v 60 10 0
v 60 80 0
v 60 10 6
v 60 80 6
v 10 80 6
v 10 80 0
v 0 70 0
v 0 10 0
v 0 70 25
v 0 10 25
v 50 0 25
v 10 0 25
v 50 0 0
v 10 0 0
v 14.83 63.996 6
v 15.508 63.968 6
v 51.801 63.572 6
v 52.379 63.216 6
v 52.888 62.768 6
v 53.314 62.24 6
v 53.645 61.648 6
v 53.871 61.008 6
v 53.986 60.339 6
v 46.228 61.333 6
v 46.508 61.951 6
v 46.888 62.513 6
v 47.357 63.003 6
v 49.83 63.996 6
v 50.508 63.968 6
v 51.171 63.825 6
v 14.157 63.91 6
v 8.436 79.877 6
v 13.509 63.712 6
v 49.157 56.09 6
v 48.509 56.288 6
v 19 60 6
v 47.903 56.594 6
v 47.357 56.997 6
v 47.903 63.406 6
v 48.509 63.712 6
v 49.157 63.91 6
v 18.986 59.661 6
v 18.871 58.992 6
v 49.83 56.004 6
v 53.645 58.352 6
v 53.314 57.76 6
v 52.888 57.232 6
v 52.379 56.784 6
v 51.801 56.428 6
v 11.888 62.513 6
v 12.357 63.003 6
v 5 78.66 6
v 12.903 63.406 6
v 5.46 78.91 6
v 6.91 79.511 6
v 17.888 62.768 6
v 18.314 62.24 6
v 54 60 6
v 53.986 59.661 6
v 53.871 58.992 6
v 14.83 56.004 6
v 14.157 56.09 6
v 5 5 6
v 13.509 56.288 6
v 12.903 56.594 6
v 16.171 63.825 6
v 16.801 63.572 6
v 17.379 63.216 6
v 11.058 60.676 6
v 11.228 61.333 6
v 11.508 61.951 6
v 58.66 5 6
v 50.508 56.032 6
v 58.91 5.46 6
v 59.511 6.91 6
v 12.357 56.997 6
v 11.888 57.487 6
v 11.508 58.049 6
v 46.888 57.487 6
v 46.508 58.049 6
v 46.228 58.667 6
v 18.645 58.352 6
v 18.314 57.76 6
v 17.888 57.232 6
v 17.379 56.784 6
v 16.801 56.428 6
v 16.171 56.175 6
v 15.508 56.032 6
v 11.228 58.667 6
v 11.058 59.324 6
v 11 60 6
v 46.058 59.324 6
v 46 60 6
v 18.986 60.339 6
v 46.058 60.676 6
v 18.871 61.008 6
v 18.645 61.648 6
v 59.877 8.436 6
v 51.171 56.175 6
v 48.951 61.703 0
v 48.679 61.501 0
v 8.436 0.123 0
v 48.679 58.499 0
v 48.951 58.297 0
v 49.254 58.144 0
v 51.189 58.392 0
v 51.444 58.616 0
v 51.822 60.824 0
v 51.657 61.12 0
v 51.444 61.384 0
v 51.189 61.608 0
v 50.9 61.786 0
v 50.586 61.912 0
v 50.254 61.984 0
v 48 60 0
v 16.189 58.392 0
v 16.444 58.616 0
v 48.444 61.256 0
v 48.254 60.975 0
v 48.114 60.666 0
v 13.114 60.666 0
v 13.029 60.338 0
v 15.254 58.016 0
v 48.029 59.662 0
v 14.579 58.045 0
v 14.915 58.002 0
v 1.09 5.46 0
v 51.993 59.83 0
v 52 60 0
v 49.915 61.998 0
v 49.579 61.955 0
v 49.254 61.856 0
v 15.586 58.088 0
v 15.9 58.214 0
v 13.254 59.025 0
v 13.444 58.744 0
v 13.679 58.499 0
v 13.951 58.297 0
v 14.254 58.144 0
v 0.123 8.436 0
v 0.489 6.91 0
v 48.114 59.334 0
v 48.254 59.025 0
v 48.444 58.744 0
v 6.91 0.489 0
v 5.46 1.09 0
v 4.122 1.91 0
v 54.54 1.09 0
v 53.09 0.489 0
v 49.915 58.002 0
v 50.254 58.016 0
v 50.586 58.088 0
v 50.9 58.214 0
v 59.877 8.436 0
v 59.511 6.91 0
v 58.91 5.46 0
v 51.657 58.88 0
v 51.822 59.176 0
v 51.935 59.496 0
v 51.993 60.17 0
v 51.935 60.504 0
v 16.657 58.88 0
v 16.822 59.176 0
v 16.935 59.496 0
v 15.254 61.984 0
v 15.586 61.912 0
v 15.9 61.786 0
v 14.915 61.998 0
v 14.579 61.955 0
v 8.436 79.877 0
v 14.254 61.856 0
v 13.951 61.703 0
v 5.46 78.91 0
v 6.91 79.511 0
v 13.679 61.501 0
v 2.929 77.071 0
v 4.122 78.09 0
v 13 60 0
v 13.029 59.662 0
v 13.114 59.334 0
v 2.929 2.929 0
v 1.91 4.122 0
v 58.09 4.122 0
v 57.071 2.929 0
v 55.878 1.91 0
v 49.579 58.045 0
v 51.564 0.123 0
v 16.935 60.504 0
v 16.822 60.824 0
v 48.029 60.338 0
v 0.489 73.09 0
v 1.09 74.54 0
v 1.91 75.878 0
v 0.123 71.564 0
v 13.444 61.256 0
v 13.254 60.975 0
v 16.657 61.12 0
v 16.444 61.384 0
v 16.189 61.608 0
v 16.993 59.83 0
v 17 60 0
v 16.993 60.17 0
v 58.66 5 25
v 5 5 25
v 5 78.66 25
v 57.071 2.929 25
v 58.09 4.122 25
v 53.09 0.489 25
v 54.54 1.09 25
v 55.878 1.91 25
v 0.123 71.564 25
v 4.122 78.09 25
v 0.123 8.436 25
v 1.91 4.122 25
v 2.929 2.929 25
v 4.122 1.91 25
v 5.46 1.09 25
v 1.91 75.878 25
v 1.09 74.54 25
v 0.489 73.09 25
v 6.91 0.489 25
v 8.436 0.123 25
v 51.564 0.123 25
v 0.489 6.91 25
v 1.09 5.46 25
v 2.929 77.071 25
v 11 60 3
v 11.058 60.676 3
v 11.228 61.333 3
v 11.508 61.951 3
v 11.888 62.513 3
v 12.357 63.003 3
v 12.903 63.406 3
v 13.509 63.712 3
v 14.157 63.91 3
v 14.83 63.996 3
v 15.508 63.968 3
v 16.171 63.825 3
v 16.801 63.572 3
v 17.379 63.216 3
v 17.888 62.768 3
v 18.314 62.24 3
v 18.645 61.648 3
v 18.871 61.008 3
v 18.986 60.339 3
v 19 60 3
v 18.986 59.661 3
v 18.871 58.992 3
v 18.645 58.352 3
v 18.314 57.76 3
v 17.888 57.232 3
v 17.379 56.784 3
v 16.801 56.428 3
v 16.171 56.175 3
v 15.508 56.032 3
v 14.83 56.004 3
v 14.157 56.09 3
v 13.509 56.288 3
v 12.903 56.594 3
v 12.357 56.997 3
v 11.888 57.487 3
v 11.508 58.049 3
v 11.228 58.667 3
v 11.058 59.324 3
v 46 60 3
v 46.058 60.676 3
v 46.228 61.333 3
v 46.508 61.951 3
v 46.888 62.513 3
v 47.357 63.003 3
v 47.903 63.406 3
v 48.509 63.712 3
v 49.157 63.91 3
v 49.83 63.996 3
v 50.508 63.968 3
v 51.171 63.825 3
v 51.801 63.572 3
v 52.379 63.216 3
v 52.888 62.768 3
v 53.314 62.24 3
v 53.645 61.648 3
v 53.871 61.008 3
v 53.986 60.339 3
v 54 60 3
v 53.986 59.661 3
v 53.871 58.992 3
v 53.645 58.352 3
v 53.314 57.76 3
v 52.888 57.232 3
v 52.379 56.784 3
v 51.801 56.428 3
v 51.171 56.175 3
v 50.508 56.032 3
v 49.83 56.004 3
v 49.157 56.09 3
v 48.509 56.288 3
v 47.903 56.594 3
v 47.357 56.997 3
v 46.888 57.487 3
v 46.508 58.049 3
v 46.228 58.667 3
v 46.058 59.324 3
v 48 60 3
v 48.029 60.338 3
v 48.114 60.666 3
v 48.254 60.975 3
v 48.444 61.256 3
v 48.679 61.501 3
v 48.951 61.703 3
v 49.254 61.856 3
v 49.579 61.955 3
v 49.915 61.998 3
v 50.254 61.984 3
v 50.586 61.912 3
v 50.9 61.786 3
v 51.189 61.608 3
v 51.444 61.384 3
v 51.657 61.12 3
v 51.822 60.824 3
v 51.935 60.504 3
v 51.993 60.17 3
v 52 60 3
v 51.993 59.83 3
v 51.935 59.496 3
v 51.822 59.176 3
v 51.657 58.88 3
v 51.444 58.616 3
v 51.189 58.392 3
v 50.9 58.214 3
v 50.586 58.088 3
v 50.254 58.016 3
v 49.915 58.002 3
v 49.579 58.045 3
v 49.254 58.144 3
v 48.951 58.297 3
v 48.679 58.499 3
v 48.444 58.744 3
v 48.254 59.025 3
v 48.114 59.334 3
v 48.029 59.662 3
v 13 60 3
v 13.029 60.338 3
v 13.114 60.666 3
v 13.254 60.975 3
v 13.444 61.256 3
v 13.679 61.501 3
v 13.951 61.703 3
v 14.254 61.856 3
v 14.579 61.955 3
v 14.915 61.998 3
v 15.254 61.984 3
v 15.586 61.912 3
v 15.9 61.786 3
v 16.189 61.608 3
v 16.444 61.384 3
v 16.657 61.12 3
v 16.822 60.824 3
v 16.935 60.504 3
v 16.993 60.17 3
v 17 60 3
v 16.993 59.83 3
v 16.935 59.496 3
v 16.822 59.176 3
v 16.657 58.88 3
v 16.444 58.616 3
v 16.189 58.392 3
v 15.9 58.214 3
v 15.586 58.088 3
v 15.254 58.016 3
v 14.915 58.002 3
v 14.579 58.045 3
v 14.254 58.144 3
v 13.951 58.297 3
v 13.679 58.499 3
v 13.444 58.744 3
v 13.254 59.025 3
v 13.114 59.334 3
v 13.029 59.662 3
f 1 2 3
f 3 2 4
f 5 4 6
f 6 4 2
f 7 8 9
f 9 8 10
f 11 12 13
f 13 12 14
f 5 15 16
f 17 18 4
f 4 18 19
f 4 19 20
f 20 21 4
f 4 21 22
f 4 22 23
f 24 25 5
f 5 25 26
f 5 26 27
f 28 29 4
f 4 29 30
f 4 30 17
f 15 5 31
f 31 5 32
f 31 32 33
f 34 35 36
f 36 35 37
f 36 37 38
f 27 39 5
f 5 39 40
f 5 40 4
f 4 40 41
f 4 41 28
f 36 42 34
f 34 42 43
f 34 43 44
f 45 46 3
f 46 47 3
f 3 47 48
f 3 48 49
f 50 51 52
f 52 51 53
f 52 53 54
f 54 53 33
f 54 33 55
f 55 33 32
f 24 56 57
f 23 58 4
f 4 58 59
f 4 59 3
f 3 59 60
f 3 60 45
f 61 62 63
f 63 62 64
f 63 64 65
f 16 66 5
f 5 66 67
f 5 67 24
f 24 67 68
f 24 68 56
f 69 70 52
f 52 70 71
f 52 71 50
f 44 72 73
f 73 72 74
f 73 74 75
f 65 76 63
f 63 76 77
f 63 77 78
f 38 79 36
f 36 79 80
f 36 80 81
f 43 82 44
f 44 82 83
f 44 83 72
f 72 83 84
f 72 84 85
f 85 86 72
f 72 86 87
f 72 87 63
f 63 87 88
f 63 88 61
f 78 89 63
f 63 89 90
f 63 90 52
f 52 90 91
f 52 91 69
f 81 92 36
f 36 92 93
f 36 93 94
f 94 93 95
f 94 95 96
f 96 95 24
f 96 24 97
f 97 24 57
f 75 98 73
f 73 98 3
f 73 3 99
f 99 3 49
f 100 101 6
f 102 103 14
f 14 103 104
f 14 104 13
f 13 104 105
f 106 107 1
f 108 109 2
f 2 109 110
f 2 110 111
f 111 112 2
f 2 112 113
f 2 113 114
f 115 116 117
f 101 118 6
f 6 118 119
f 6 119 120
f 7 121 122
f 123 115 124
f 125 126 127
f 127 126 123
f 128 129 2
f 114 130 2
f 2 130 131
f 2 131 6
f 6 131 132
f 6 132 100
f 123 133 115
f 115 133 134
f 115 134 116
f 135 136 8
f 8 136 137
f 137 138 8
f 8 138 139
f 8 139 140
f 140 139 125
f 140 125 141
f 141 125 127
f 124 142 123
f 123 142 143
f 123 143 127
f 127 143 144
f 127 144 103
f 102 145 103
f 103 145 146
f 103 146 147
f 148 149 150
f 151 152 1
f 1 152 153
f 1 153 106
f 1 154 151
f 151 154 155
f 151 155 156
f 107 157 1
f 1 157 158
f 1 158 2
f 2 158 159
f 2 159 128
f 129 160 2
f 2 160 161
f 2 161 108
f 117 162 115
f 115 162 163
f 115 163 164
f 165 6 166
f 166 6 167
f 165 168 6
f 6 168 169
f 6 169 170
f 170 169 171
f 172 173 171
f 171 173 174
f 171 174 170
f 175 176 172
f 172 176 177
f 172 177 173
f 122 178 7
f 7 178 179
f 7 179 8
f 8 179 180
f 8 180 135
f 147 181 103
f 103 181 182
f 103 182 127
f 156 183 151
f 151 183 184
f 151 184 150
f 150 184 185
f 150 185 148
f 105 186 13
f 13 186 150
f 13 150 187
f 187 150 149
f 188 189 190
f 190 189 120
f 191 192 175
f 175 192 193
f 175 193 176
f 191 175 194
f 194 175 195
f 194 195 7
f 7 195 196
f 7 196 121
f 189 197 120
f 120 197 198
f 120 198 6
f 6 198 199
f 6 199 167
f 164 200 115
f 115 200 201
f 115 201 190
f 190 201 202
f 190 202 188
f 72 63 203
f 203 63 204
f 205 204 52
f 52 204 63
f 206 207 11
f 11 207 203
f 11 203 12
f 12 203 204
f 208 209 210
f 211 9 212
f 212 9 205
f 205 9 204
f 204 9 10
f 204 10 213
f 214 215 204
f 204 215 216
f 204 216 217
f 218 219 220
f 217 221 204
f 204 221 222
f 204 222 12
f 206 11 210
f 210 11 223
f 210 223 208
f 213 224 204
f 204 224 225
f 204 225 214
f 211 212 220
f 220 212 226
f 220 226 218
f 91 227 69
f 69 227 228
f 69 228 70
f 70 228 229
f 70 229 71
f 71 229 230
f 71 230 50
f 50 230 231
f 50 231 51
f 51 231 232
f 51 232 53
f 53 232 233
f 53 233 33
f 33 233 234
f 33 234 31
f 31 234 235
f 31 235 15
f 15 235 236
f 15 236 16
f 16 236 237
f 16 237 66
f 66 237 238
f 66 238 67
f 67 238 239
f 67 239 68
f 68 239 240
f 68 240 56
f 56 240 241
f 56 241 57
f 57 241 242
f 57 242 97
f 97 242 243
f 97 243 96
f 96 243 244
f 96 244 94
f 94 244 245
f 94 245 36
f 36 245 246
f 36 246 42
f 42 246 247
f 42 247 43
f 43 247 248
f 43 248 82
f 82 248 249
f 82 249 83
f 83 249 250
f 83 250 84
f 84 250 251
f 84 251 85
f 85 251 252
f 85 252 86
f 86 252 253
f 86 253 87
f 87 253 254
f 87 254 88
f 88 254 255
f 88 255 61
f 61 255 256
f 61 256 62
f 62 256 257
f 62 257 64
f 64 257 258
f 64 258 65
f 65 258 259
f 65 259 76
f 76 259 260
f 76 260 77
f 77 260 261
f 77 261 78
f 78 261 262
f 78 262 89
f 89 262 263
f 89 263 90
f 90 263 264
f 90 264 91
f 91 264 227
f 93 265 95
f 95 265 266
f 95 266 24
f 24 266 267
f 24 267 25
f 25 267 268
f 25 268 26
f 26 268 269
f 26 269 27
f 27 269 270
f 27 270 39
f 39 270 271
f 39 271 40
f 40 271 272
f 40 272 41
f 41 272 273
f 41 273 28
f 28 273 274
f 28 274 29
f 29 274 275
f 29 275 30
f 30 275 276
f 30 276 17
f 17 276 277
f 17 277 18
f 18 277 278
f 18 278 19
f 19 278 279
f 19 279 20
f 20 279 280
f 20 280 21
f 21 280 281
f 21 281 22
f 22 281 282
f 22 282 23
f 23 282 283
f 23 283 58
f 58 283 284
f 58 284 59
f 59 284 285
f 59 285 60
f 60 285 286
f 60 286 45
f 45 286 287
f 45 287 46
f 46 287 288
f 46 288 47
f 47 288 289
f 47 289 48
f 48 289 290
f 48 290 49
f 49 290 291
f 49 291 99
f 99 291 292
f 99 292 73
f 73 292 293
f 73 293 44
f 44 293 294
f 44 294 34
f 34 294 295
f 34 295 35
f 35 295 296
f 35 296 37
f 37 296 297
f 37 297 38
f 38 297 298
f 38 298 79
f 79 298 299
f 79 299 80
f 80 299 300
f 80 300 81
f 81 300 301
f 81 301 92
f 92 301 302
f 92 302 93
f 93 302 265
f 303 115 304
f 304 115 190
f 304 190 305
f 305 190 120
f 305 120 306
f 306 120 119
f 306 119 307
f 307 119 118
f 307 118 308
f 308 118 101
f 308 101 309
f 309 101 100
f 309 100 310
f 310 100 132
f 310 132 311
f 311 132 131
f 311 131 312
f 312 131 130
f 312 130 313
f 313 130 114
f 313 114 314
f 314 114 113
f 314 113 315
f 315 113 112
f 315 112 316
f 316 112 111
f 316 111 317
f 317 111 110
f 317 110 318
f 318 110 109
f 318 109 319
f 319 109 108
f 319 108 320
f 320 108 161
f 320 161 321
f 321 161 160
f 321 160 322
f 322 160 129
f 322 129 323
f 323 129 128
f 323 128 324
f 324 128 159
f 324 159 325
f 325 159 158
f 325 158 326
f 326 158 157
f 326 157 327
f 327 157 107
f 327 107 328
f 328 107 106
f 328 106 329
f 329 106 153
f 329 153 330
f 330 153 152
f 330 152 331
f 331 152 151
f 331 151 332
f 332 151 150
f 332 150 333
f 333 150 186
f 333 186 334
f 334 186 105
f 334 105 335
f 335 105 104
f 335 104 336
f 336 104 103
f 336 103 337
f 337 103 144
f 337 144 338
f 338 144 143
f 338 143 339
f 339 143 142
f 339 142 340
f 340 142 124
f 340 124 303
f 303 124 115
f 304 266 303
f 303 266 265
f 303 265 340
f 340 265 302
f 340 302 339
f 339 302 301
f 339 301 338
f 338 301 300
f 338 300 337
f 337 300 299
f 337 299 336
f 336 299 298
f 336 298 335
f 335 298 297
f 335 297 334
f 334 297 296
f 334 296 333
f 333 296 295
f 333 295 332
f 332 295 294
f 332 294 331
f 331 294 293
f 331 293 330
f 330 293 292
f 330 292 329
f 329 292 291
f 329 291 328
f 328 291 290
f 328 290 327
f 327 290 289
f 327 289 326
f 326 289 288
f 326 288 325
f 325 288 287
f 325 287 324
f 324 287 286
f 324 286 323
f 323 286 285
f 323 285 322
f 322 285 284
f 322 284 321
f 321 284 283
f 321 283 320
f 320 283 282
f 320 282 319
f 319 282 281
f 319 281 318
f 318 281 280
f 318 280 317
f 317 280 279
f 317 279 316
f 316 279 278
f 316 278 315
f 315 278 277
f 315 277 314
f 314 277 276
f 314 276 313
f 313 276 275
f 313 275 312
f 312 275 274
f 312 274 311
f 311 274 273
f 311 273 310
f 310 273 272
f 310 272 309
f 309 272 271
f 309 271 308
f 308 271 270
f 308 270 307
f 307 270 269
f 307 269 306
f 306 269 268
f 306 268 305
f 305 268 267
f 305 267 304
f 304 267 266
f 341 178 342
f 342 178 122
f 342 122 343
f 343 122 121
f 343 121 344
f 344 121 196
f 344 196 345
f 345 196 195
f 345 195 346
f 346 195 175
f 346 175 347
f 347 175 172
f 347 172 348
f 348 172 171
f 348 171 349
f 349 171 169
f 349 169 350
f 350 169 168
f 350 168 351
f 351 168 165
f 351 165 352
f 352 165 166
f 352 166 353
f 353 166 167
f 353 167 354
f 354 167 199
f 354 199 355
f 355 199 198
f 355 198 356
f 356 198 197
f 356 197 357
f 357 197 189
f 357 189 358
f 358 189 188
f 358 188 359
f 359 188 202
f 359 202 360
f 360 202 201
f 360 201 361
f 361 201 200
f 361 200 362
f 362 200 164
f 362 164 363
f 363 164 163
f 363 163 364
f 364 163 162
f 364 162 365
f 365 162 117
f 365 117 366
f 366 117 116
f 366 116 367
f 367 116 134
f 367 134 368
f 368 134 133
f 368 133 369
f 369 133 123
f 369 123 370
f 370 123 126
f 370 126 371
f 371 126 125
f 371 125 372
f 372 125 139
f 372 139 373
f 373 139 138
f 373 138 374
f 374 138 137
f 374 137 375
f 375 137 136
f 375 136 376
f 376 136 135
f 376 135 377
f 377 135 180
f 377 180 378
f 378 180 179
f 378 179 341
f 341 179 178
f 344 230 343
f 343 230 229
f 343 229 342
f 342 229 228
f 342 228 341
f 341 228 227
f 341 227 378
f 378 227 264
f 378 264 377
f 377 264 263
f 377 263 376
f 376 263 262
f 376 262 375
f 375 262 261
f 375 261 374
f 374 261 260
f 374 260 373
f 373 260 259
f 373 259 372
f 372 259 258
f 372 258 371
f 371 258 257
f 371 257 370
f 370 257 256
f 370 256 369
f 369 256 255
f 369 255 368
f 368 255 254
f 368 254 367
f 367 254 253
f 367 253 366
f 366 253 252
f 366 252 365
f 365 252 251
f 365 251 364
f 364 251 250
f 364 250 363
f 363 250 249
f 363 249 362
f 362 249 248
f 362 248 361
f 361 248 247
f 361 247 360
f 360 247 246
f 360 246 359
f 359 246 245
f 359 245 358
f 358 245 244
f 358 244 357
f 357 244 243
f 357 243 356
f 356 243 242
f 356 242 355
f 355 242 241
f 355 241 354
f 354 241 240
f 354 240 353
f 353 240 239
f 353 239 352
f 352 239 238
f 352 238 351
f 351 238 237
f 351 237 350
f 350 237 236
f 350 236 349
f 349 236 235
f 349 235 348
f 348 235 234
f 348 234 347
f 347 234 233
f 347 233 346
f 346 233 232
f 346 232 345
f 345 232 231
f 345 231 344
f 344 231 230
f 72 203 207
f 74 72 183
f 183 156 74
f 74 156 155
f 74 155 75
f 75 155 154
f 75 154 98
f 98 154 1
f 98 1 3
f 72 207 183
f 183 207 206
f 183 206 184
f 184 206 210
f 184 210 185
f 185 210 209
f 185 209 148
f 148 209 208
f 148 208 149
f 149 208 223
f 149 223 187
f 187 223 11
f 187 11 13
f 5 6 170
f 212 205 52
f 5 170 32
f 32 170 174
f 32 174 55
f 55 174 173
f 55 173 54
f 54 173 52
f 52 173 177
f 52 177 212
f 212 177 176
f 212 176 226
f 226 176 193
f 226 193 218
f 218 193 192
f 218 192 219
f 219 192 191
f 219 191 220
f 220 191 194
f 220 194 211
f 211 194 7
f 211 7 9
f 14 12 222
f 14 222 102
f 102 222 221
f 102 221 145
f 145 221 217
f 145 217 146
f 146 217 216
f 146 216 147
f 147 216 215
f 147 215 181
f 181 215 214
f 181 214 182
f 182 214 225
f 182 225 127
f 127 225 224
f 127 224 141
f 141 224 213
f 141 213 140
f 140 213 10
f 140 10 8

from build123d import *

# Parameters (mm, degrees)
SKETCH1_W           = 60
SKETCH1_H           = 80
BOSS_EXTRUDE4_DEPTH = 6
BOSS_EXTRUDE5_DEPTH = 25
SKETCH1_15_R        = 2
CUT_EXTRUDE1_DEPTH  = 25
SKETCH1_16_R        = 4
SKETCH1_16_R_2      = 2
CUT_EXTRUDE2_DEPTH  = 25
SKETCH1_18_R        = 4
SKETCH1_18_R_2      = 2
BOSS_EXTRUDE7_DEPTH = 3
FILLET1_R           = 10


with BuildPart() as part:
    # Sketch1 → Boss-Extrude4 (new body)
    with BuildSketch(Plane.XY):
        with Locations((30, 40)):
            Rectangle(SKETCH1_W, SKETCH1_H)
    extrude(amount=BOSS_EXTRUDE4_DEPTH)

    # Sketch1<12> → Boss-Extrude5 (add)
    with BuildSketch(Plane.XY):
        Polygon((5, 5), (5, 80), (0, 80), (0, 0), (60, 0), (60, 5), align=None)
    extrude(amount=BOSS_EXTRUDE5_DEPTH)

    # Sketch1<15> → Cut-Extrude1 (cut)
    with BuildSketch(Plane.XY):
        with Locations((50, 60)):
            Circle(SKETCH1_15_R)
        with Locations((15, 60)):
            Circle(SKETCH1_15_R)
    extrude(amount=CUT_EXTRUDE1_DEPTH, mode=Mode.SUBTRACT)

    # Sketch1<16> → Cut-Extrude2 (cut)
    # profile 1 of 2: a face of its own
    with BuildSketch(Plane.XY):
        with Locations((50, 60)):
            Circle(SKETCH1_16_R)
        with Locations((50, 60)):
            Circle(SKETCH1_16_R_2, mode=Mode.SUBTRACT)
    # profile 2 of 2: a face of its own
    with BuildSketch(Plane.XY):
        with Locations((15, 60)):
            Circle(SKETCH1_16_R)
        with Locations((15, 60)):
            Circle(SKETCH1_16_R_2, mode=Mode.SUBTRACT)
    extrude(amount=CUT_EXTRUDE2_DEPTH, mode=Mode.SUBTRACT)

    # Sketch1<18> → Boss-Extrude7 (add)
    # profile 1 of 2: a face of its own
    with BuildSketch(Plane.XY):
        with Locations((50, 60)):
            Circle(SKETCH1_18_R)
        with Locations((50, 60)):
            Circle(SKETCH1_18_R_2, mode=Mode.SUBTRACT)
    # profile 2 of 2: a face of its own
    with BuildSketch(Plane.XY):
        with Locations((15, 60)):
            Circle(SKETCH1_18_R)
        with Locations((15, 60)):
            Circle(SKETCH1_18_R_2, mode=Mode.SUBTRACT)
    extrude(amount=BOSS_EXTRUDE7_DEPTH)

    # Fillet1
    fillet1_edges = [part.edges().sort_by_distance(p)[0] for p in [
        (60, 0, 12.5),
        (0, 80, 12.5),
        (0, 0, 12.5),
    ]]
    fillet(fillet1_edges, radius=FILLET1_R)


solid = part.part
